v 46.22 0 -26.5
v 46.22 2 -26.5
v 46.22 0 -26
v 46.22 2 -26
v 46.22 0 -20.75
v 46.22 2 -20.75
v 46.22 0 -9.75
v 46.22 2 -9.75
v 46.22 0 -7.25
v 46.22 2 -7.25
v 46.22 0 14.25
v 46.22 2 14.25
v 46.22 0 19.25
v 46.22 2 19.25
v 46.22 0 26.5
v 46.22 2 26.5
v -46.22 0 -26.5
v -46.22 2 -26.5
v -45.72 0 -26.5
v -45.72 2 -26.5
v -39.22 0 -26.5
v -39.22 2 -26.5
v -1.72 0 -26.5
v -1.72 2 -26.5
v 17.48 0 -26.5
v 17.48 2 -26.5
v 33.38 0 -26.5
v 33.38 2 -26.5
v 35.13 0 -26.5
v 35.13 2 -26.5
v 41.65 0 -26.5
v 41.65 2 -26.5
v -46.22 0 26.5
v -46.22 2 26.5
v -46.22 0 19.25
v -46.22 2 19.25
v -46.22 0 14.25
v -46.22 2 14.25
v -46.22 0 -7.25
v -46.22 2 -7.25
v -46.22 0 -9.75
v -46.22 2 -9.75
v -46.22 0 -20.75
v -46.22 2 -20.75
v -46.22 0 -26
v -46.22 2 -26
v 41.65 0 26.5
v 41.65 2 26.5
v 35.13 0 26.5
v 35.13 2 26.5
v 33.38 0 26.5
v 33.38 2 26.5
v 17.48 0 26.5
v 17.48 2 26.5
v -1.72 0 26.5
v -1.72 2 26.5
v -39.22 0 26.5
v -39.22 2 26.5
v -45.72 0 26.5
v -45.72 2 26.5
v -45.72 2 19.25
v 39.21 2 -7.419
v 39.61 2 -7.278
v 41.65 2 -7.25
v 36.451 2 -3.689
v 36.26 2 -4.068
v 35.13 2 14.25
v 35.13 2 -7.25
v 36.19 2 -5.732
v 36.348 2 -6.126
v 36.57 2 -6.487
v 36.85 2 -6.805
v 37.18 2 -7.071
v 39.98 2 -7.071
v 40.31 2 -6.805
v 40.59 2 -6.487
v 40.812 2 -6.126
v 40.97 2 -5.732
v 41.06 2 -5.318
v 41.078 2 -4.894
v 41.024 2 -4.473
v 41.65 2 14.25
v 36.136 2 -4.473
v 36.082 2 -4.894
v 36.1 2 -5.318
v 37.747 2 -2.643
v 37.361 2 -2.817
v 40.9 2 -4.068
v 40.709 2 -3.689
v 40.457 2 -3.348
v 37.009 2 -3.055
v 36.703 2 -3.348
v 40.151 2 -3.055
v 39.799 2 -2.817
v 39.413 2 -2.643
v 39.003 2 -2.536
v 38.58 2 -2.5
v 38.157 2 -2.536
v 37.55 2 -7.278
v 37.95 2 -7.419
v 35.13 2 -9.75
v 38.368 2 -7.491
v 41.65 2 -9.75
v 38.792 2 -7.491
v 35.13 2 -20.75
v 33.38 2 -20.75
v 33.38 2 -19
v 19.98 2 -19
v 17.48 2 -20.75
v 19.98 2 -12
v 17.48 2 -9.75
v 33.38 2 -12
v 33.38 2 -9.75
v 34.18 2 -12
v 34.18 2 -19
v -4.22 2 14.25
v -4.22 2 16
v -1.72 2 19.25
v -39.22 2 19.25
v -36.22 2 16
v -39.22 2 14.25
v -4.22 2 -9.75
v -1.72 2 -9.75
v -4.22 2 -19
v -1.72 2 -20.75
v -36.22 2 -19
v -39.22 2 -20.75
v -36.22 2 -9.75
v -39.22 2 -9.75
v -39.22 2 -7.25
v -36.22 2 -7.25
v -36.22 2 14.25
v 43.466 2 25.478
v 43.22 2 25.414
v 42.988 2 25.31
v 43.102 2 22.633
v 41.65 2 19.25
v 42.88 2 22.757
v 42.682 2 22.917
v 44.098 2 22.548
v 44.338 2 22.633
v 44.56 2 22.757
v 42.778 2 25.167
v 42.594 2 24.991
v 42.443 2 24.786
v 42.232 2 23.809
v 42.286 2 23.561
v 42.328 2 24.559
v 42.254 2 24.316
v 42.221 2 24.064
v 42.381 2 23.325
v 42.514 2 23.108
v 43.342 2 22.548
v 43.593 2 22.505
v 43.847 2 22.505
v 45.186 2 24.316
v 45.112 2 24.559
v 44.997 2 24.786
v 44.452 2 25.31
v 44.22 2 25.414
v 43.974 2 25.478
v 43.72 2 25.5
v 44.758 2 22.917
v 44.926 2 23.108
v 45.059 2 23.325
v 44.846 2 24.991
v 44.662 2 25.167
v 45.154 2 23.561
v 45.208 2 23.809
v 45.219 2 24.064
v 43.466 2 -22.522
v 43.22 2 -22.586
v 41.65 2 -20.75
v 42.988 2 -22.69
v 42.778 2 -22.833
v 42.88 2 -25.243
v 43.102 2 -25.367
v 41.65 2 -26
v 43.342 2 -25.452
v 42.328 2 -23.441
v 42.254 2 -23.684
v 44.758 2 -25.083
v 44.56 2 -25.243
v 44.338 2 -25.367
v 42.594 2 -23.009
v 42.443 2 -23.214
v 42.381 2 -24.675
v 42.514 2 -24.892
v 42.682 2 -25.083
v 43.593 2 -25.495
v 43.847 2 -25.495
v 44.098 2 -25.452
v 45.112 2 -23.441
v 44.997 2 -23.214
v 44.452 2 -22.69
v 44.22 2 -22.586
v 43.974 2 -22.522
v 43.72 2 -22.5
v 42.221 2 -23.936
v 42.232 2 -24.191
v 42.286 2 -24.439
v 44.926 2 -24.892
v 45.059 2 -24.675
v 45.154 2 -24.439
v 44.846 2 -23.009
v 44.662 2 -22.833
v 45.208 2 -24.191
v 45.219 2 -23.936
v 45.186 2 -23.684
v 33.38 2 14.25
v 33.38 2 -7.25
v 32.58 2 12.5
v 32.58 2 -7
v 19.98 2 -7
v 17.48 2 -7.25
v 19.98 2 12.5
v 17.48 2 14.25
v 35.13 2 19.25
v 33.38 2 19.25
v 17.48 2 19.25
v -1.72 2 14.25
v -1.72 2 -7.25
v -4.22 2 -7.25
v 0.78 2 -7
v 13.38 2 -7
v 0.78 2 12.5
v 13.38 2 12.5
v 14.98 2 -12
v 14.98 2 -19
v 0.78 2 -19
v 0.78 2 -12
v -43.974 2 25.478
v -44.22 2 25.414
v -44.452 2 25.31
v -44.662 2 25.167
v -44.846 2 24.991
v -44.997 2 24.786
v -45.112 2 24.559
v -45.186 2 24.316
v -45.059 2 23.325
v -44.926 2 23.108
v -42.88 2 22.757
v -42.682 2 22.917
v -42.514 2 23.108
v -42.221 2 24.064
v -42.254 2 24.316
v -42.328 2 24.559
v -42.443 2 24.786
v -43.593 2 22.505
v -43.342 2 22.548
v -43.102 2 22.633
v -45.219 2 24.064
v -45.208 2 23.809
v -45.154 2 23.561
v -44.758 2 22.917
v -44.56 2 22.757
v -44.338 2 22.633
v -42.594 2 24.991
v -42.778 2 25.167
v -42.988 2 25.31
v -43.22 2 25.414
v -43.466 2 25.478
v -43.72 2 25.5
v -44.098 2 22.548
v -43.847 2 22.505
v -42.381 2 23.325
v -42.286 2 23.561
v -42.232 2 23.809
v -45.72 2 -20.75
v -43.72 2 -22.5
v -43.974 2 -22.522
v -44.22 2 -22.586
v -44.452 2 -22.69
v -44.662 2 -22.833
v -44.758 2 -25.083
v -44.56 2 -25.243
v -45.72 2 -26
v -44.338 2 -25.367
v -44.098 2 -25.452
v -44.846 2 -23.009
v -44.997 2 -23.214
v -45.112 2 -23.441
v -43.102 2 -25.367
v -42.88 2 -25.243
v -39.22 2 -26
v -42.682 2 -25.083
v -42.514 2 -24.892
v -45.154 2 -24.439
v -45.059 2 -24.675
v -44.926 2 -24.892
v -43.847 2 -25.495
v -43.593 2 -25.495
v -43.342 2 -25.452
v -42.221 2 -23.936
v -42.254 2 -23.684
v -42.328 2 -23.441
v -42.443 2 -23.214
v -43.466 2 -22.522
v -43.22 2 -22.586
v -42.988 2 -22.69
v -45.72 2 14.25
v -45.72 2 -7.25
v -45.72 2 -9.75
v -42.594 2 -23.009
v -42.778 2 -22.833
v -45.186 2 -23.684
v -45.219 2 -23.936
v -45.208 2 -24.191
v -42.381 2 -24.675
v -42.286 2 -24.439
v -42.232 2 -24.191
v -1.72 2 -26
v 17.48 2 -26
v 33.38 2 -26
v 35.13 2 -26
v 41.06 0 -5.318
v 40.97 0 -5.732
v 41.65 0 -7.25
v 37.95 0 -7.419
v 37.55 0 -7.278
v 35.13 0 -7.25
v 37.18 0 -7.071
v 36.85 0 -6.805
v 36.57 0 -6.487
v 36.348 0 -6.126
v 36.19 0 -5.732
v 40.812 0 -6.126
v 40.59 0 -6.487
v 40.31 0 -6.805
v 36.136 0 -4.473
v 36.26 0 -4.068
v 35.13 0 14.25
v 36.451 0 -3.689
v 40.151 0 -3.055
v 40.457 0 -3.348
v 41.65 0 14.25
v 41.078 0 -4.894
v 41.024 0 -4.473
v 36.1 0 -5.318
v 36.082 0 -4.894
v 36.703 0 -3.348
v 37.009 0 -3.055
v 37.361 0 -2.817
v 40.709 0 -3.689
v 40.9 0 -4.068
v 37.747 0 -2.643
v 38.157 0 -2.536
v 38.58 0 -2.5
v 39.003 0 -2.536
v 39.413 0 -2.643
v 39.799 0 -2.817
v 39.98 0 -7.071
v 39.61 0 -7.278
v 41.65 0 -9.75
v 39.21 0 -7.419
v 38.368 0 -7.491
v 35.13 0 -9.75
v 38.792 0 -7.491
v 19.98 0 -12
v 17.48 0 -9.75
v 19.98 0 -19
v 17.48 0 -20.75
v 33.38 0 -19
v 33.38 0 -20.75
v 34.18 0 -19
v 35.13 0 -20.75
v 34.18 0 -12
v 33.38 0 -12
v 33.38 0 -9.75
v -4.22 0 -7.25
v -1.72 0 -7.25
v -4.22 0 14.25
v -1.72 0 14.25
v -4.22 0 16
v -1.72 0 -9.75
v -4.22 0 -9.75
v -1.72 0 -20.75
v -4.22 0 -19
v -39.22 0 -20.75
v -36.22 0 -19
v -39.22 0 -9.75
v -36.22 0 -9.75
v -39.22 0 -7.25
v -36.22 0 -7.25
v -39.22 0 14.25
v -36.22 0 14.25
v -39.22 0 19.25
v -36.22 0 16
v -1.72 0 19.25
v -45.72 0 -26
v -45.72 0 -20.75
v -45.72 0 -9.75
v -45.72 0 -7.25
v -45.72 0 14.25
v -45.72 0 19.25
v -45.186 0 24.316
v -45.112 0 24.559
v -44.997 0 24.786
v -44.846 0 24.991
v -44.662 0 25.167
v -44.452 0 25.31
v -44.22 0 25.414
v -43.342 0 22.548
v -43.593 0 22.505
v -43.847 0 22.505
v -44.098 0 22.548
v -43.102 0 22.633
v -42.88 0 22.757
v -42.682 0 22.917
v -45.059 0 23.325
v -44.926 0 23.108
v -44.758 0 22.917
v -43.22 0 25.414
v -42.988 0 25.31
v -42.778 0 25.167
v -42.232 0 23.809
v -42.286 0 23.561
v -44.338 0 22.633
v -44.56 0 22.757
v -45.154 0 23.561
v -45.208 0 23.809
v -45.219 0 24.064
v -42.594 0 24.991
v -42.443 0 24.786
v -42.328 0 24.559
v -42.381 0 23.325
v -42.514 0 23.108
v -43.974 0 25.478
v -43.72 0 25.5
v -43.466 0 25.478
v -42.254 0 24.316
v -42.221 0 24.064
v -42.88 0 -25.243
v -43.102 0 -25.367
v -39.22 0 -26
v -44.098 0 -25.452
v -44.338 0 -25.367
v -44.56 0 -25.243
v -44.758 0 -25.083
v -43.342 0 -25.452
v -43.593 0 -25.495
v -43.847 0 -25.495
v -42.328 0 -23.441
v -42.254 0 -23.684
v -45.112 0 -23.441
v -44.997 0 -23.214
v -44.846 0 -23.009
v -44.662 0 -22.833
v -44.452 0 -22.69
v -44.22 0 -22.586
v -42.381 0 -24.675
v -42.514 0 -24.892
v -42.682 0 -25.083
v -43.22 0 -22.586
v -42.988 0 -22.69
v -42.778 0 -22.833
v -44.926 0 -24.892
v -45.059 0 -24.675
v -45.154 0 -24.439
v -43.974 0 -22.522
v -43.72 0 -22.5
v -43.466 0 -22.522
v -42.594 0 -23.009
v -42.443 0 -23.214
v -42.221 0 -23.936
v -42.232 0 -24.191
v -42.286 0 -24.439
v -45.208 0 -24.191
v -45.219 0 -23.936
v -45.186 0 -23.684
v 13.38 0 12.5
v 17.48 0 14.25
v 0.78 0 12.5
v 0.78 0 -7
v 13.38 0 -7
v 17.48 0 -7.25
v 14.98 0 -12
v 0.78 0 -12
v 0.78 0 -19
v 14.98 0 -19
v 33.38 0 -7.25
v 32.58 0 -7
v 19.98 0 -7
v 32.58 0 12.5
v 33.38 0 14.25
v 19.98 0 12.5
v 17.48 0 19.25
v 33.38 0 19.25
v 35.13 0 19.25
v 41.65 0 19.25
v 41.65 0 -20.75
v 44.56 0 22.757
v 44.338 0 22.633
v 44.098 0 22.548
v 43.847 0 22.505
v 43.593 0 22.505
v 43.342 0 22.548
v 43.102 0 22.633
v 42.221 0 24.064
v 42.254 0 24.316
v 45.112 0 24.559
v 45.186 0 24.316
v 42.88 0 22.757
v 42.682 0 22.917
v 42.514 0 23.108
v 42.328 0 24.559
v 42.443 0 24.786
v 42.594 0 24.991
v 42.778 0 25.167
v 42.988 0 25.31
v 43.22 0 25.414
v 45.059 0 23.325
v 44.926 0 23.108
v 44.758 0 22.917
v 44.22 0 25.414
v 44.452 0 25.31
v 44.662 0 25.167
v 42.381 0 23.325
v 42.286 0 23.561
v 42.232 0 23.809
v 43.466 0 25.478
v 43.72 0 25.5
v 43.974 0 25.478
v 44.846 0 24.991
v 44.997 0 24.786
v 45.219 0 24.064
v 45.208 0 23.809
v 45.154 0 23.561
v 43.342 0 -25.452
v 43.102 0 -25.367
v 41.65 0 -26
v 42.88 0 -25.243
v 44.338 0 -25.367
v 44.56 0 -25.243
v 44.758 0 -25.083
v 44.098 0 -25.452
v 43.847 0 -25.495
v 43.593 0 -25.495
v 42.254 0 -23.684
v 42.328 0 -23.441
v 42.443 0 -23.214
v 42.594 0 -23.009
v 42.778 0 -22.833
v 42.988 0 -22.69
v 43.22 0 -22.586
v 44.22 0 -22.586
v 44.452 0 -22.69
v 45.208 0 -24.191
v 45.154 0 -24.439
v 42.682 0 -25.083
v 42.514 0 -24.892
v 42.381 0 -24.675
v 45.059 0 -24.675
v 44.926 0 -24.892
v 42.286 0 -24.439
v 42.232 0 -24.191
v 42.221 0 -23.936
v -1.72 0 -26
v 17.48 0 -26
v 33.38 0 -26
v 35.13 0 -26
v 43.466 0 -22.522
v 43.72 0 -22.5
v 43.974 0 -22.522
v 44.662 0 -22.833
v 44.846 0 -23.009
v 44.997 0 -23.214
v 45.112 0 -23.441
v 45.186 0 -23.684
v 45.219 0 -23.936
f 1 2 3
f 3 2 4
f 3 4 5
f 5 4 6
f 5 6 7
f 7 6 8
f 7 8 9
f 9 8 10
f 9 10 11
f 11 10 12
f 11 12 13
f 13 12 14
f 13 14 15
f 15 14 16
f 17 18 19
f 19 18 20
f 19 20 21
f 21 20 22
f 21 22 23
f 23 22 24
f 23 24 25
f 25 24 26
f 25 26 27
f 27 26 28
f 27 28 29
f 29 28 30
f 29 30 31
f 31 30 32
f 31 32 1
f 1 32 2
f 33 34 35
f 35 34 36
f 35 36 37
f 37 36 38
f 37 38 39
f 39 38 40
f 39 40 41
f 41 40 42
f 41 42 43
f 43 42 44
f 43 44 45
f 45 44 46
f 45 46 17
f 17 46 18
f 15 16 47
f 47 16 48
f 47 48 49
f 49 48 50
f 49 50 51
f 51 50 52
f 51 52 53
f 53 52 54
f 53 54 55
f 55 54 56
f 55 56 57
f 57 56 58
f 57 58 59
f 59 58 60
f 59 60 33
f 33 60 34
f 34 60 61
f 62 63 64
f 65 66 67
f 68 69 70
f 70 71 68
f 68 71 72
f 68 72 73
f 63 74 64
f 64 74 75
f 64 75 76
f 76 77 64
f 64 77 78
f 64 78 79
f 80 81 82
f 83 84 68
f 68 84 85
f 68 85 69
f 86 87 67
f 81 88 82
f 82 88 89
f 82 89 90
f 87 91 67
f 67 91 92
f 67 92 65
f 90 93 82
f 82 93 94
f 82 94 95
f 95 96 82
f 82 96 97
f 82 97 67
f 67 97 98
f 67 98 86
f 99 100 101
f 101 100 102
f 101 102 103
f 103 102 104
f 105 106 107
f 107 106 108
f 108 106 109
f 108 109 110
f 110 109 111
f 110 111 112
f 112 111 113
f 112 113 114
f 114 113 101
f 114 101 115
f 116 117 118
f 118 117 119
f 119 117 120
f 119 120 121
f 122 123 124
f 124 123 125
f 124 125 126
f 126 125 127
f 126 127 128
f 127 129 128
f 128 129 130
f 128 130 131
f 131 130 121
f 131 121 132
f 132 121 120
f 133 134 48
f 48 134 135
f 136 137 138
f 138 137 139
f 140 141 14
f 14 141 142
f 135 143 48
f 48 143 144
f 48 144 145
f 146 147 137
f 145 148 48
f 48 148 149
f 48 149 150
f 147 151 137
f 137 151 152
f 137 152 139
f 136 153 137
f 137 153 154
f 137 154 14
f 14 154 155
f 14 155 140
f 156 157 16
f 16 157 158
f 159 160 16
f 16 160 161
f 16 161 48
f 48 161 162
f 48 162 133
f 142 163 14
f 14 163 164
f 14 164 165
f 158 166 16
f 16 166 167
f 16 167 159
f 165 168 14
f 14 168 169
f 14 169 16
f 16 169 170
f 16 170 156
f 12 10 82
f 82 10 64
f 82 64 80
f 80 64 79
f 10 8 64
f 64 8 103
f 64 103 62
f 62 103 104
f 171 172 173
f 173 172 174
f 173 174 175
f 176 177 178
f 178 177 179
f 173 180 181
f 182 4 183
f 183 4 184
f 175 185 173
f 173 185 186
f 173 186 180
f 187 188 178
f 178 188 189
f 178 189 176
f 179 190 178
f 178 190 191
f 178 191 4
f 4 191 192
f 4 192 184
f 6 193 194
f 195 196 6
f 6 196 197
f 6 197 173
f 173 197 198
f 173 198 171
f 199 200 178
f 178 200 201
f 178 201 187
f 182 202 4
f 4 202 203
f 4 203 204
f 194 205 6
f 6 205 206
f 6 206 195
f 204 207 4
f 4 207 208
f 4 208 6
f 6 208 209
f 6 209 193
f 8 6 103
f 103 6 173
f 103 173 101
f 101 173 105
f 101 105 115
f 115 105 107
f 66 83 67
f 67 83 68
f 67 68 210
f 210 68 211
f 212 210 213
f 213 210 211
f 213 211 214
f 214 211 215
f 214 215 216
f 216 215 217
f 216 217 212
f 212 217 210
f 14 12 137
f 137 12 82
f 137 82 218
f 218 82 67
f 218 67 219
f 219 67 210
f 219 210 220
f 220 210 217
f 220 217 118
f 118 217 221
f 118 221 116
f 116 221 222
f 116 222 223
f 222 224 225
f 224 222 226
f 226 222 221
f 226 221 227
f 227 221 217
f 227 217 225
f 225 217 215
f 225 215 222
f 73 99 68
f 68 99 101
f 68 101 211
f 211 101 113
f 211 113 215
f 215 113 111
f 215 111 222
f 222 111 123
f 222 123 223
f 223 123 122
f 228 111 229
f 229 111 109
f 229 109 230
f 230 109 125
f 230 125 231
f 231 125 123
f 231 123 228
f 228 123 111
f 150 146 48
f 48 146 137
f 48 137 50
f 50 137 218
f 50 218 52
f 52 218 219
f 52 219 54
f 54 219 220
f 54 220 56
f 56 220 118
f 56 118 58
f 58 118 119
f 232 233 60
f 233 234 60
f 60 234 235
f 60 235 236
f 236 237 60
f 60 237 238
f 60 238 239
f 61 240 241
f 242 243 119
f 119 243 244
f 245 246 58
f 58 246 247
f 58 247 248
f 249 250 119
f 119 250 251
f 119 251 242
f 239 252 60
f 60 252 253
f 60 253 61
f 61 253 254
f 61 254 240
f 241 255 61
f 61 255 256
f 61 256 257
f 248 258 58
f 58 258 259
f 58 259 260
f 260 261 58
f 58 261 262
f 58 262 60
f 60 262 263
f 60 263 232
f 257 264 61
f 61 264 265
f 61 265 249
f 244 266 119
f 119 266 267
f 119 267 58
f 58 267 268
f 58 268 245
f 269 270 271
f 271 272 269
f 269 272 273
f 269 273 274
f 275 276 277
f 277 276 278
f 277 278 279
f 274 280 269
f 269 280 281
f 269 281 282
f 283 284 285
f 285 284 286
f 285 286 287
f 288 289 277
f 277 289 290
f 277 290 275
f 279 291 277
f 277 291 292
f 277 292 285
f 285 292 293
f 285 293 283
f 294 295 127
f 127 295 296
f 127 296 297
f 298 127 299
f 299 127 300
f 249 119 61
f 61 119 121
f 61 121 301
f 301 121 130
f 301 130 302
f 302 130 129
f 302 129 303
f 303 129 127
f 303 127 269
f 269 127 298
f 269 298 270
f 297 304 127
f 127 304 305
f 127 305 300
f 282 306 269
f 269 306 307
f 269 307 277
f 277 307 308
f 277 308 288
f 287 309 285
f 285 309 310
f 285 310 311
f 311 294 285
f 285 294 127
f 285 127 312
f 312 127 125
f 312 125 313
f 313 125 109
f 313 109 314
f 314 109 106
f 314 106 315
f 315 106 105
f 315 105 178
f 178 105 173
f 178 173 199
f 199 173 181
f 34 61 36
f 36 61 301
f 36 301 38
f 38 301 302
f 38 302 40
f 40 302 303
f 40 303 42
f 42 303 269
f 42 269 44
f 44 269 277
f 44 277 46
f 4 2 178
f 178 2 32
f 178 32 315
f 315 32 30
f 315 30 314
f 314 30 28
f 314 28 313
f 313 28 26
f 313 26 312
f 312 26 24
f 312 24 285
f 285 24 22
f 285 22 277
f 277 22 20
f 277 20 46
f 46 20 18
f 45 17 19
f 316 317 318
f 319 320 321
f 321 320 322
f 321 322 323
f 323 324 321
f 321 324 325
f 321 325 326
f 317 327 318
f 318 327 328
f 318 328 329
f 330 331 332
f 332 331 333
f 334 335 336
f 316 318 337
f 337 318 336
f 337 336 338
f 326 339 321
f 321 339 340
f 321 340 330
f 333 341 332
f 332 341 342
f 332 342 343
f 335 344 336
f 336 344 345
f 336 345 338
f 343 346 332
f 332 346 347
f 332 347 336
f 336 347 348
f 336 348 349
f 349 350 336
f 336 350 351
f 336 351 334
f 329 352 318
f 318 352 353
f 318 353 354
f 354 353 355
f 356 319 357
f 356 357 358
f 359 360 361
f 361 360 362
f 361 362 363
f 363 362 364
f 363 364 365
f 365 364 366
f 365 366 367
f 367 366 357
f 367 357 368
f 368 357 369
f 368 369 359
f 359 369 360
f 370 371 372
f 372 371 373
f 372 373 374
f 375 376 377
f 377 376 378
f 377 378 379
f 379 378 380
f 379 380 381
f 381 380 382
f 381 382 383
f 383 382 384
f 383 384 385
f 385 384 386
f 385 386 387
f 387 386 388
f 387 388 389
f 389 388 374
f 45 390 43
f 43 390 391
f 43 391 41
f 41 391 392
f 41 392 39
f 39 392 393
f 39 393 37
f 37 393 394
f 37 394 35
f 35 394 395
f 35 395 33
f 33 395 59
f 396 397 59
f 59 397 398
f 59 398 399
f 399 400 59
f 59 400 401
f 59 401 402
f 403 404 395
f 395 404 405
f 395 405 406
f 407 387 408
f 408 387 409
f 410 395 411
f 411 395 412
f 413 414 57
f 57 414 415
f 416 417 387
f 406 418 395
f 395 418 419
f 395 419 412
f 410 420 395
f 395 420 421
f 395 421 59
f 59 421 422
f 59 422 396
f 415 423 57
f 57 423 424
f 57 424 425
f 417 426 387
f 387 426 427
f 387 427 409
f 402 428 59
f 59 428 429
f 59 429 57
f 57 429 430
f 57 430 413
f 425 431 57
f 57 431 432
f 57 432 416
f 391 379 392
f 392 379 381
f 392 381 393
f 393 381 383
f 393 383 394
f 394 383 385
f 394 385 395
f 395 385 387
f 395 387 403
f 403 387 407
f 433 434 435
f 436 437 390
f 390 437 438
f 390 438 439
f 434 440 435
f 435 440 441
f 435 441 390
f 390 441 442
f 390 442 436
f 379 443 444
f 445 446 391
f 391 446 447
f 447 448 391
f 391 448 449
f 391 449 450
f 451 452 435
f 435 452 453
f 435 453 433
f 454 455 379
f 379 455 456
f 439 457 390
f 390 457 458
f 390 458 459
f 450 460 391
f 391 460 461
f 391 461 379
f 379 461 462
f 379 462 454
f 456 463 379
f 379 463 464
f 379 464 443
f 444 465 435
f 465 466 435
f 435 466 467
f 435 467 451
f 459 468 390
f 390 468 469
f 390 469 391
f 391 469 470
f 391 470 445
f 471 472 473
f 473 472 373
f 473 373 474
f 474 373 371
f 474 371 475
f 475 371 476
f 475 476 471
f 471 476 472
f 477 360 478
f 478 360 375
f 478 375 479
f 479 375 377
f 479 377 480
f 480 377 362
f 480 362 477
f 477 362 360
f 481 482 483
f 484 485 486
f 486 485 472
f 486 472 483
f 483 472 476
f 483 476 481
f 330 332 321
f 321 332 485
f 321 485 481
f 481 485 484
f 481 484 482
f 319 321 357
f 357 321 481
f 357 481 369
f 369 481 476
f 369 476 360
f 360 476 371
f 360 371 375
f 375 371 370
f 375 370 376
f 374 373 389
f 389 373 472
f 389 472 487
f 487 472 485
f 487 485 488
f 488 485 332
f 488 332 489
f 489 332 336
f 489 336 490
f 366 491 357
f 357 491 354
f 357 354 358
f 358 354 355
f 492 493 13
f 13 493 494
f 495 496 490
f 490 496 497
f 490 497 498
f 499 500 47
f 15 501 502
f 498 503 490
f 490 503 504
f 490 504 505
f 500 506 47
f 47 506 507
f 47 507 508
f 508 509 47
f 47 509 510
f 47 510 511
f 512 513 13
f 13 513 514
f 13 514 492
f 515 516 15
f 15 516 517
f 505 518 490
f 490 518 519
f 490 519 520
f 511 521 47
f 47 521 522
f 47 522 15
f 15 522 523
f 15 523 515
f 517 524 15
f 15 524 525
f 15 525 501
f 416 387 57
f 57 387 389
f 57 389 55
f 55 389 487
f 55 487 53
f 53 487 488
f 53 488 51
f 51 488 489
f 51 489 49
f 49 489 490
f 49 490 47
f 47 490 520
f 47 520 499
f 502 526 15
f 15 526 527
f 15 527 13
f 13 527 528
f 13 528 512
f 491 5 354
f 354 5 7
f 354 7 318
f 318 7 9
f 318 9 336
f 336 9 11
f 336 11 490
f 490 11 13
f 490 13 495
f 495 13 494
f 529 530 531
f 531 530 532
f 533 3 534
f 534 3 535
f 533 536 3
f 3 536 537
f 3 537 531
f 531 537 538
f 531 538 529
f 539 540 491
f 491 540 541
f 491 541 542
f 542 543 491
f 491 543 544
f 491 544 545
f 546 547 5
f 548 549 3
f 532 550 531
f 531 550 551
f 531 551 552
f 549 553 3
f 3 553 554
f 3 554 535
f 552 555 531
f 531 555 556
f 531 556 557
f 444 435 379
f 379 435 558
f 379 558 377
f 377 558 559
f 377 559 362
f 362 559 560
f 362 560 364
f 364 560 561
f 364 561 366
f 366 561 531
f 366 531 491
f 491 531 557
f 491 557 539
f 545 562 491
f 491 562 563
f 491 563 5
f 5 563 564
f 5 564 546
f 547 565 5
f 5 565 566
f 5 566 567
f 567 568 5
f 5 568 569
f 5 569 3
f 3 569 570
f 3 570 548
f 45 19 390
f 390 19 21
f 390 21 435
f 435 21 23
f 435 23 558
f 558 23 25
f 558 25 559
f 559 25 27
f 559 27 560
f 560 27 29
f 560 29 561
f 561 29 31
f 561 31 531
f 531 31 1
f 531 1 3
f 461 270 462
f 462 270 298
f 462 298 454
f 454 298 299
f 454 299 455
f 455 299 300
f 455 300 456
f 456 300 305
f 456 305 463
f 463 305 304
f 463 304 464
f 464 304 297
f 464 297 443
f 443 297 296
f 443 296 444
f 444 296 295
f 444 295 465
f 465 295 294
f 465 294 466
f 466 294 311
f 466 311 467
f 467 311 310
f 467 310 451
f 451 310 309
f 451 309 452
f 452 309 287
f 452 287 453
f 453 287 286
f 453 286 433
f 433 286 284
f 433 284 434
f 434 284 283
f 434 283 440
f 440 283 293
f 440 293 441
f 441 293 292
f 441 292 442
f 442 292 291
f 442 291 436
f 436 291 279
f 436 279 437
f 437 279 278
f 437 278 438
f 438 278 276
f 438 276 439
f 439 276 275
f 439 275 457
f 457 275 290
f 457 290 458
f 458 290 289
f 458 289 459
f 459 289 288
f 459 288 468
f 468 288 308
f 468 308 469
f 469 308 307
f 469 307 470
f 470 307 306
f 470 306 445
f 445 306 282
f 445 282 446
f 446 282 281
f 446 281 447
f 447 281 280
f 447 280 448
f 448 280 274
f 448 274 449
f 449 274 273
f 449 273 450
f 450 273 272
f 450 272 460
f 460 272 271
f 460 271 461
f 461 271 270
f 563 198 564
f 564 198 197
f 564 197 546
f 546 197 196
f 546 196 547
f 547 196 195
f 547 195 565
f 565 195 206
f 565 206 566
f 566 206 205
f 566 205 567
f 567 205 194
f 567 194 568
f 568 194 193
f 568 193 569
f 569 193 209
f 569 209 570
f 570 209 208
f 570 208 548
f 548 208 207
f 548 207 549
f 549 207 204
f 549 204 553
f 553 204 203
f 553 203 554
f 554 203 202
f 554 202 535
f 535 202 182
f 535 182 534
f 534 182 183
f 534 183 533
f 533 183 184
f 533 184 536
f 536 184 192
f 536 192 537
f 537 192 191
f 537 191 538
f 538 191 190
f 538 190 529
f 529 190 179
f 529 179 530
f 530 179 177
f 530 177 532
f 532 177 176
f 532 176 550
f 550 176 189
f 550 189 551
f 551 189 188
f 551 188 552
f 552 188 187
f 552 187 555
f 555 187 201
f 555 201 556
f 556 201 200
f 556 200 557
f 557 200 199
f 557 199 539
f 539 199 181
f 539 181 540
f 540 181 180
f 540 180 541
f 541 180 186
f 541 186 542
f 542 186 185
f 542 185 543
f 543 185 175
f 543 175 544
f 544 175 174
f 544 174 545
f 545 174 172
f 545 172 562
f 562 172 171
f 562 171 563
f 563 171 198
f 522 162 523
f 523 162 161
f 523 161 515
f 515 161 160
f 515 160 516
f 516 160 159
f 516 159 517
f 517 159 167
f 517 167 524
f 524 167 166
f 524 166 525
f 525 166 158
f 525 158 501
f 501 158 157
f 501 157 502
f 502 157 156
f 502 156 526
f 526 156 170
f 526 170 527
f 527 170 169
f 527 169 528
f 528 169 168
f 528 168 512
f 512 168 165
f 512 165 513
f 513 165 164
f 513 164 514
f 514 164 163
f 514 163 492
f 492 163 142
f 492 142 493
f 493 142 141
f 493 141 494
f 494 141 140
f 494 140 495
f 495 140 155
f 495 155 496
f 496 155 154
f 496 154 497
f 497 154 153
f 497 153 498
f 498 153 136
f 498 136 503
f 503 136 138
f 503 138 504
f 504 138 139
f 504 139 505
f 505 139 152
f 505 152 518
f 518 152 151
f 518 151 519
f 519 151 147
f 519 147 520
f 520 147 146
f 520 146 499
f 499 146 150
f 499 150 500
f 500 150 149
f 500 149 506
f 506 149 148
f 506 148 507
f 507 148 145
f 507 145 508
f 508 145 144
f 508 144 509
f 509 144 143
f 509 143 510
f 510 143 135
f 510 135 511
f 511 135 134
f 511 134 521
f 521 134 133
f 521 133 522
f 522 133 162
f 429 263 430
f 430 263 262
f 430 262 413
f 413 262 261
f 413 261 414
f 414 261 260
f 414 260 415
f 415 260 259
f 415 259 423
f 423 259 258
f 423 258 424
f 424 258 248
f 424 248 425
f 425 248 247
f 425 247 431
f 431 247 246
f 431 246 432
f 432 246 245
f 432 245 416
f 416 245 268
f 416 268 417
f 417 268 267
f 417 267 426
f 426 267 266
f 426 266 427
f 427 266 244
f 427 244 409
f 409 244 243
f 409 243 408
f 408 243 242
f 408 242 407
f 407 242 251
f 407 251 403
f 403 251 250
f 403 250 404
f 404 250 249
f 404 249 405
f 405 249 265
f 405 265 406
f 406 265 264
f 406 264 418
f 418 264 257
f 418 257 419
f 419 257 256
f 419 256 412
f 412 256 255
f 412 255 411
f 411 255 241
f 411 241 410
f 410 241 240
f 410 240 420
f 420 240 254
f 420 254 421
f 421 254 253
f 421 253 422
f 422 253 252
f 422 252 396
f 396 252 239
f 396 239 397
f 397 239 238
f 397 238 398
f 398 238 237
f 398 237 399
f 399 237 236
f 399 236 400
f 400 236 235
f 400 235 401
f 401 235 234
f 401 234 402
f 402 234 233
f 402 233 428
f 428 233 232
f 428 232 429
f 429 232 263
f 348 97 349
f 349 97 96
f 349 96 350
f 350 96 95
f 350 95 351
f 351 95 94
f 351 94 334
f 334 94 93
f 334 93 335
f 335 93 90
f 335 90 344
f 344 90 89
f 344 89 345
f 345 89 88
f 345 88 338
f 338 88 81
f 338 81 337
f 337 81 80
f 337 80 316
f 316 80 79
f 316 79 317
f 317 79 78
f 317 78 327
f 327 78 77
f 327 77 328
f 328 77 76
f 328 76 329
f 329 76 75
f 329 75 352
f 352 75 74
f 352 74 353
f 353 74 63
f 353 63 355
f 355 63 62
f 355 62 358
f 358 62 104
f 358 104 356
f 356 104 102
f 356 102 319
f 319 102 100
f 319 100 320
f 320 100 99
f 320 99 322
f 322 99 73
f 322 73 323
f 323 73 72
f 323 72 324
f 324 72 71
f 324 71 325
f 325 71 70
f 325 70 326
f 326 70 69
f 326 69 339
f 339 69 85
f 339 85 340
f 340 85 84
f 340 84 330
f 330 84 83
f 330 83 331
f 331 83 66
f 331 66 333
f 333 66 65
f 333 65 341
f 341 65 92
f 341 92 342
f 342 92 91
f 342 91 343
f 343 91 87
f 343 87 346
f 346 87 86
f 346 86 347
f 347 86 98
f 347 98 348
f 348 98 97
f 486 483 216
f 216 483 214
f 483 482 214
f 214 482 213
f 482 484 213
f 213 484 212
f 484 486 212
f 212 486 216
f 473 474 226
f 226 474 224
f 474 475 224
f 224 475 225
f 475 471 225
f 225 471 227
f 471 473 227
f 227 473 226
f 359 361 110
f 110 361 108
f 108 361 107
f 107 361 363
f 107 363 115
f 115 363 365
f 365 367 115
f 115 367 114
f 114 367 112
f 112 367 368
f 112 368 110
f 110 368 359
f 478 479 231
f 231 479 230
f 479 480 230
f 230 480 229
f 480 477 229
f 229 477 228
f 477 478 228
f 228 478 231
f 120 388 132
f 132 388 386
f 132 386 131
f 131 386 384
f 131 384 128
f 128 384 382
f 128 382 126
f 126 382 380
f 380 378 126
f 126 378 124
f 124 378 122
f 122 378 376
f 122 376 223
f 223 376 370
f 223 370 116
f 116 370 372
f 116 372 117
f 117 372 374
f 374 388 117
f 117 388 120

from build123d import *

# Parameters (mm, degrees)
SKETCH1_W           = 92.44
SKETCH1_H           = 53
BOSS_EXTRUDE1_DEPTH = 2
SKETCH2_R           = 1.5
CUT_EXTRUDE1_DEPTH  = 3
SKETCH3_R           = 2.5
SKETCH3_W           = 32
SKETCH3_H           = 35
SKETCH3_W_2         = 14.2
SKETCH3_H_2         = 7
SKETCH3_W_3         = 12.6
SKETCH3_H_3         = 19.5
CUT_EXTRUDE2_DEPTH  = 3


with BuildPart() as part:
    # Sketch1 → Boss-Extrude1 (new body)
    with BuildSketch(Plane(origin=(0, 0, 0), x_dir=(1, 0, 0), z_dir=(0, 1, 0))):
        Rectangle(SKETCH1_W, SKETCH1_H)
    extrude(amount=BOSS_EXTRUDE1_DEPTH)

    # Sketch2 → Cut-Extrude1 (cut, through all)
    with BuildSketch(Plane(origin=(0, 2, 0), x_dir=(1, 0, 0), z_dir=(0, 1, 0))):
        with Locations((-43.72, 24)):
            Circle(SKETCH2_R)
        with Locations((43.72, 24)):
            Circle(SKETCH2_R)
        with Locations((43.72, -24)):
            Circle(SKETCH2_R)
        with Locations((-43.72, -24)):
            Circle(SKETCH2_R)
    extrude(amount=-CUT_EXTRUDE1_DEPTH, mode=Mode.SUBTRACT)

    # Sketch3 → Cut-Extrude2 (cut, through all)
    with BuildSketch(Plane(origin=(0, 2, 0), x_dir=(1, 0, 0), z_dir=(0, 1, 0))):
        with Locations((38.58, 5)):
            Circle(SKETCH3_R)
        with Locations((-20.22, 1.5)):
            Rectangle(SKETCH3_W, SKETCH3_H)
        with Locations((7.88, 15.5)):
            Rectangle(SKETCH3_W_2, SKETCH3_H_2)
        with Locations((27.08, 15.5)):
            Rectangle(SKETCH3_W_2, SKETCH3_H_2)
        with Locations((7.08, -2.75)):
            Rectangle(SKETCH3_W_3, SKETCH3_H_3)
        with Locations((26.28, -2.75)):
            Rectangle(SKETCH3_W_3, SKETCH3_H_3)
    extrude(amount=-CUT_EXTRUDE2_DEPTH, mode=Mode.SUBTRACT)


solid = part.part
